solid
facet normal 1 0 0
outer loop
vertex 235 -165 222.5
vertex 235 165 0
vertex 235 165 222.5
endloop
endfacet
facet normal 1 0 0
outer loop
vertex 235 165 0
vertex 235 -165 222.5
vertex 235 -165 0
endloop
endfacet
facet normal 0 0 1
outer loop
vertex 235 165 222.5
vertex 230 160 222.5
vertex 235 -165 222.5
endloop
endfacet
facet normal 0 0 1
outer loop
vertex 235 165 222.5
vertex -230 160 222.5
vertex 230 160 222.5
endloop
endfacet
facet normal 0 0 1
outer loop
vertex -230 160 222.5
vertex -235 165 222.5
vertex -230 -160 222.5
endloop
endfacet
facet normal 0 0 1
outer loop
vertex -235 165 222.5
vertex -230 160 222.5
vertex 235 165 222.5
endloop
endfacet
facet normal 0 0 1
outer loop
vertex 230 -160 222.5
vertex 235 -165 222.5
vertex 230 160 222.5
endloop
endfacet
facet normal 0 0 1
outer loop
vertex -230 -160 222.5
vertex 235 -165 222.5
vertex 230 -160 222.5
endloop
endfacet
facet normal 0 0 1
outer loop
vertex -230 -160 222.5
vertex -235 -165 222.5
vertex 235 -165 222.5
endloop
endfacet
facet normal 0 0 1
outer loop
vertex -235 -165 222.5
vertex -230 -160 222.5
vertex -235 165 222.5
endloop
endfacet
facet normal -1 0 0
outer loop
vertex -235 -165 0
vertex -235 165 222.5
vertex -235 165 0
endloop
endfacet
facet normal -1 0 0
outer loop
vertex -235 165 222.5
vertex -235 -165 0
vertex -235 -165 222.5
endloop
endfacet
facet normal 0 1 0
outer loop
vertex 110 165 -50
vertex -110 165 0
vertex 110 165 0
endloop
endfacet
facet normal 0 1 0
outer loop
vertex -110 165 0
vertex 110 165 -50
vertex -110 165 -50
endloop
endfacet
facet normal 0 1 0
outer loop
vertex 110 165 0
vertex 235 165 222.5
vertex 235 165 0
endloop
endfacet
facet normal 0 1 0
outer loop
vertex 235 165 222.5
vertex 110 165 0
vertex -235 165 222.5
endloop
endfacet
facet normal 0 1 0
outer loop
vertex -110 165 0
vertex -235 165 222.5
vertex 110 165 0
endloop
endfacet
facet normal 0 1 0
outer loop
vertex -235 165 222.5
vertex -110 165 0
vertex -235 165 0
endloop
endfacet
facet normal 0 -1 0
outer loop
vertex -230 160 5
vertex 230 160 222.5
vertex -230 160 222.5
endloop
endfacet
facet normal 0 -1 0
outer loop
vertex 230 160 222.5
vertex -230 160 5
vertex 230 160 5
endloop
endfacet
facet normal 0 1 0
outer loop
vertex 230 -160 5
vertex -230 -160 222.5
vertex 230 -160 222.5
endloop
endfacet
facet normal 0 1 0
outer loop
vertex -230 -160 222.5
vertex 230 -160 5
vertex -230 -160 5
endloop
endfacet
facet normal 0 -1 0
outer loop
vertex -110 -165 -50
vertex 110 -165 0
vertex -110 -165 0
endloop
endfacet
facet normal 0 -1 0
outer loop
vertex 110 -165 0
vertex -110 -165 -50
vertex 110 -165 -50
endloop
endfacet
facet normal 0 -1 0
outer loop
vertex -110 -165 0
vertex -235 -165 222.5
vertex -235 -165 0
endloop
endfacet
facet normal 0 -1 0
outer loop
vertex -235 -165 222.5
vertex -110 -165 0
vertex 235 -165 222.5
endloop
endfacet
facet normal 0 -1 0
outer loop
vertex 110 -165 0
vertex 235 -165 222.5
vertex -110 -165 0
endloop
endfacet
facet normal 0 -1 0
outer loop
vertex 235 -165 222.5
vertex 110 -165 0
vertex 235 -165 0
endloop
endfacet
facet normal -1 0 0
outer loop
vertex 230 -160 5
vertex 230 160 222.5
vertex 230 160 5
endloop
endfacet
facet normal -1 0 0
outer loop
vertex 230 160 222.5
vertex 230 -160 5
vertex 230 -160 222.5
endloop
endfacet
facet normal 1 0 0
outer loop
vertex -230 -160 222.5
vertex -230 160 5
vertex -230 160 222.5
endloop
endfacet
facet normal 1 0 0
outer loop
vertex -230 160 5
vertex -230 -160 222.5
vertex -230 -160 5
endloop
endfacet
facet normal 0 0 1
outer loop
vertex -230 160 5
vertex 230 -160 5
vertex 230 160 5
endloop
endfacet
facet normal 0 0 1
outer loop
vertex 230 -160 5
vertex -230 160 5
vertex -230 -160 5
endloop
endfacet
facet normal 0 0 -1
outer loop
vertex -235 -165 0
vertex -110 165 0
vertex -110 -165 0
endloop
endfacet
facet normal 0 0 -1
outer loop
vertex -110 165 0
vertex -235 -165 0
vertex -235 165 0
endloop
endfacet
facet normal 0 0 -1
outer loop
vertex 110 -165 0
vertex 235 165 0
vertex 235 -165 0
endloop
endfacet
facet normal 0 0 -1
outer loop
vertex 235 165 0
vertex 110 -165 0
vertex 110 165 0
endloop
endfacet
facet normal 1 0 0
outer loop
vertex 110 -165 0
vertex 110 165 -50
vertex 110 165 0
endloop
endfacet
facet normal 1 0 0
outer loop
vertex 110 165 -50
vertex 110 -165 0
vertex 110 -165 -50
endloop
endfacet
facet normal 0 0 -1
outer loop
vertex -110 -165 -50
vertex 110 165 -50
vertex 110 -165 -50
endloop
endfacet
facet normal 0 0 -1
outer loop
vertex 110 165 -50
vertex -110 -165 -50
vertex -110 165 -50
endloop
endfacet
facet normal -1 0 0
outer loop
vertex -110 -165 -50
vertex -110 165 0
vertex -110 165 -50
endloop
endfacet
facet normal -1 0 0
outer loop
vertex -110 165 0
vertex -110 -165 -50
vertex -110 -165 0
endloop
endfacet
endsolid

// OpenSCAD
module Canasto(length = 470, width = 330, height=220, thickness=5){
    color([.25,.25,.25])
    translate([0, 0, thickness/2]){
        cube([length, width, thickness], center=true);
        
        translate([0, 0, height/2]){
            
            for (y=[1, -1]) {
                translate([0, y*(width/2-thickness/2), 0])
                cube([length, thickness, height], center=true);
            }
            for (x=[1, -1]) {
                translate([x*(length/2-thickness/2), 0])
                cube([thickness, width, height], center=true);
            }
        }
    }
    translate([-(length-250)/2, -(width-0)/2, -50])
    cube([(length-250), width, 50
], center=false);
}


Canasto();
